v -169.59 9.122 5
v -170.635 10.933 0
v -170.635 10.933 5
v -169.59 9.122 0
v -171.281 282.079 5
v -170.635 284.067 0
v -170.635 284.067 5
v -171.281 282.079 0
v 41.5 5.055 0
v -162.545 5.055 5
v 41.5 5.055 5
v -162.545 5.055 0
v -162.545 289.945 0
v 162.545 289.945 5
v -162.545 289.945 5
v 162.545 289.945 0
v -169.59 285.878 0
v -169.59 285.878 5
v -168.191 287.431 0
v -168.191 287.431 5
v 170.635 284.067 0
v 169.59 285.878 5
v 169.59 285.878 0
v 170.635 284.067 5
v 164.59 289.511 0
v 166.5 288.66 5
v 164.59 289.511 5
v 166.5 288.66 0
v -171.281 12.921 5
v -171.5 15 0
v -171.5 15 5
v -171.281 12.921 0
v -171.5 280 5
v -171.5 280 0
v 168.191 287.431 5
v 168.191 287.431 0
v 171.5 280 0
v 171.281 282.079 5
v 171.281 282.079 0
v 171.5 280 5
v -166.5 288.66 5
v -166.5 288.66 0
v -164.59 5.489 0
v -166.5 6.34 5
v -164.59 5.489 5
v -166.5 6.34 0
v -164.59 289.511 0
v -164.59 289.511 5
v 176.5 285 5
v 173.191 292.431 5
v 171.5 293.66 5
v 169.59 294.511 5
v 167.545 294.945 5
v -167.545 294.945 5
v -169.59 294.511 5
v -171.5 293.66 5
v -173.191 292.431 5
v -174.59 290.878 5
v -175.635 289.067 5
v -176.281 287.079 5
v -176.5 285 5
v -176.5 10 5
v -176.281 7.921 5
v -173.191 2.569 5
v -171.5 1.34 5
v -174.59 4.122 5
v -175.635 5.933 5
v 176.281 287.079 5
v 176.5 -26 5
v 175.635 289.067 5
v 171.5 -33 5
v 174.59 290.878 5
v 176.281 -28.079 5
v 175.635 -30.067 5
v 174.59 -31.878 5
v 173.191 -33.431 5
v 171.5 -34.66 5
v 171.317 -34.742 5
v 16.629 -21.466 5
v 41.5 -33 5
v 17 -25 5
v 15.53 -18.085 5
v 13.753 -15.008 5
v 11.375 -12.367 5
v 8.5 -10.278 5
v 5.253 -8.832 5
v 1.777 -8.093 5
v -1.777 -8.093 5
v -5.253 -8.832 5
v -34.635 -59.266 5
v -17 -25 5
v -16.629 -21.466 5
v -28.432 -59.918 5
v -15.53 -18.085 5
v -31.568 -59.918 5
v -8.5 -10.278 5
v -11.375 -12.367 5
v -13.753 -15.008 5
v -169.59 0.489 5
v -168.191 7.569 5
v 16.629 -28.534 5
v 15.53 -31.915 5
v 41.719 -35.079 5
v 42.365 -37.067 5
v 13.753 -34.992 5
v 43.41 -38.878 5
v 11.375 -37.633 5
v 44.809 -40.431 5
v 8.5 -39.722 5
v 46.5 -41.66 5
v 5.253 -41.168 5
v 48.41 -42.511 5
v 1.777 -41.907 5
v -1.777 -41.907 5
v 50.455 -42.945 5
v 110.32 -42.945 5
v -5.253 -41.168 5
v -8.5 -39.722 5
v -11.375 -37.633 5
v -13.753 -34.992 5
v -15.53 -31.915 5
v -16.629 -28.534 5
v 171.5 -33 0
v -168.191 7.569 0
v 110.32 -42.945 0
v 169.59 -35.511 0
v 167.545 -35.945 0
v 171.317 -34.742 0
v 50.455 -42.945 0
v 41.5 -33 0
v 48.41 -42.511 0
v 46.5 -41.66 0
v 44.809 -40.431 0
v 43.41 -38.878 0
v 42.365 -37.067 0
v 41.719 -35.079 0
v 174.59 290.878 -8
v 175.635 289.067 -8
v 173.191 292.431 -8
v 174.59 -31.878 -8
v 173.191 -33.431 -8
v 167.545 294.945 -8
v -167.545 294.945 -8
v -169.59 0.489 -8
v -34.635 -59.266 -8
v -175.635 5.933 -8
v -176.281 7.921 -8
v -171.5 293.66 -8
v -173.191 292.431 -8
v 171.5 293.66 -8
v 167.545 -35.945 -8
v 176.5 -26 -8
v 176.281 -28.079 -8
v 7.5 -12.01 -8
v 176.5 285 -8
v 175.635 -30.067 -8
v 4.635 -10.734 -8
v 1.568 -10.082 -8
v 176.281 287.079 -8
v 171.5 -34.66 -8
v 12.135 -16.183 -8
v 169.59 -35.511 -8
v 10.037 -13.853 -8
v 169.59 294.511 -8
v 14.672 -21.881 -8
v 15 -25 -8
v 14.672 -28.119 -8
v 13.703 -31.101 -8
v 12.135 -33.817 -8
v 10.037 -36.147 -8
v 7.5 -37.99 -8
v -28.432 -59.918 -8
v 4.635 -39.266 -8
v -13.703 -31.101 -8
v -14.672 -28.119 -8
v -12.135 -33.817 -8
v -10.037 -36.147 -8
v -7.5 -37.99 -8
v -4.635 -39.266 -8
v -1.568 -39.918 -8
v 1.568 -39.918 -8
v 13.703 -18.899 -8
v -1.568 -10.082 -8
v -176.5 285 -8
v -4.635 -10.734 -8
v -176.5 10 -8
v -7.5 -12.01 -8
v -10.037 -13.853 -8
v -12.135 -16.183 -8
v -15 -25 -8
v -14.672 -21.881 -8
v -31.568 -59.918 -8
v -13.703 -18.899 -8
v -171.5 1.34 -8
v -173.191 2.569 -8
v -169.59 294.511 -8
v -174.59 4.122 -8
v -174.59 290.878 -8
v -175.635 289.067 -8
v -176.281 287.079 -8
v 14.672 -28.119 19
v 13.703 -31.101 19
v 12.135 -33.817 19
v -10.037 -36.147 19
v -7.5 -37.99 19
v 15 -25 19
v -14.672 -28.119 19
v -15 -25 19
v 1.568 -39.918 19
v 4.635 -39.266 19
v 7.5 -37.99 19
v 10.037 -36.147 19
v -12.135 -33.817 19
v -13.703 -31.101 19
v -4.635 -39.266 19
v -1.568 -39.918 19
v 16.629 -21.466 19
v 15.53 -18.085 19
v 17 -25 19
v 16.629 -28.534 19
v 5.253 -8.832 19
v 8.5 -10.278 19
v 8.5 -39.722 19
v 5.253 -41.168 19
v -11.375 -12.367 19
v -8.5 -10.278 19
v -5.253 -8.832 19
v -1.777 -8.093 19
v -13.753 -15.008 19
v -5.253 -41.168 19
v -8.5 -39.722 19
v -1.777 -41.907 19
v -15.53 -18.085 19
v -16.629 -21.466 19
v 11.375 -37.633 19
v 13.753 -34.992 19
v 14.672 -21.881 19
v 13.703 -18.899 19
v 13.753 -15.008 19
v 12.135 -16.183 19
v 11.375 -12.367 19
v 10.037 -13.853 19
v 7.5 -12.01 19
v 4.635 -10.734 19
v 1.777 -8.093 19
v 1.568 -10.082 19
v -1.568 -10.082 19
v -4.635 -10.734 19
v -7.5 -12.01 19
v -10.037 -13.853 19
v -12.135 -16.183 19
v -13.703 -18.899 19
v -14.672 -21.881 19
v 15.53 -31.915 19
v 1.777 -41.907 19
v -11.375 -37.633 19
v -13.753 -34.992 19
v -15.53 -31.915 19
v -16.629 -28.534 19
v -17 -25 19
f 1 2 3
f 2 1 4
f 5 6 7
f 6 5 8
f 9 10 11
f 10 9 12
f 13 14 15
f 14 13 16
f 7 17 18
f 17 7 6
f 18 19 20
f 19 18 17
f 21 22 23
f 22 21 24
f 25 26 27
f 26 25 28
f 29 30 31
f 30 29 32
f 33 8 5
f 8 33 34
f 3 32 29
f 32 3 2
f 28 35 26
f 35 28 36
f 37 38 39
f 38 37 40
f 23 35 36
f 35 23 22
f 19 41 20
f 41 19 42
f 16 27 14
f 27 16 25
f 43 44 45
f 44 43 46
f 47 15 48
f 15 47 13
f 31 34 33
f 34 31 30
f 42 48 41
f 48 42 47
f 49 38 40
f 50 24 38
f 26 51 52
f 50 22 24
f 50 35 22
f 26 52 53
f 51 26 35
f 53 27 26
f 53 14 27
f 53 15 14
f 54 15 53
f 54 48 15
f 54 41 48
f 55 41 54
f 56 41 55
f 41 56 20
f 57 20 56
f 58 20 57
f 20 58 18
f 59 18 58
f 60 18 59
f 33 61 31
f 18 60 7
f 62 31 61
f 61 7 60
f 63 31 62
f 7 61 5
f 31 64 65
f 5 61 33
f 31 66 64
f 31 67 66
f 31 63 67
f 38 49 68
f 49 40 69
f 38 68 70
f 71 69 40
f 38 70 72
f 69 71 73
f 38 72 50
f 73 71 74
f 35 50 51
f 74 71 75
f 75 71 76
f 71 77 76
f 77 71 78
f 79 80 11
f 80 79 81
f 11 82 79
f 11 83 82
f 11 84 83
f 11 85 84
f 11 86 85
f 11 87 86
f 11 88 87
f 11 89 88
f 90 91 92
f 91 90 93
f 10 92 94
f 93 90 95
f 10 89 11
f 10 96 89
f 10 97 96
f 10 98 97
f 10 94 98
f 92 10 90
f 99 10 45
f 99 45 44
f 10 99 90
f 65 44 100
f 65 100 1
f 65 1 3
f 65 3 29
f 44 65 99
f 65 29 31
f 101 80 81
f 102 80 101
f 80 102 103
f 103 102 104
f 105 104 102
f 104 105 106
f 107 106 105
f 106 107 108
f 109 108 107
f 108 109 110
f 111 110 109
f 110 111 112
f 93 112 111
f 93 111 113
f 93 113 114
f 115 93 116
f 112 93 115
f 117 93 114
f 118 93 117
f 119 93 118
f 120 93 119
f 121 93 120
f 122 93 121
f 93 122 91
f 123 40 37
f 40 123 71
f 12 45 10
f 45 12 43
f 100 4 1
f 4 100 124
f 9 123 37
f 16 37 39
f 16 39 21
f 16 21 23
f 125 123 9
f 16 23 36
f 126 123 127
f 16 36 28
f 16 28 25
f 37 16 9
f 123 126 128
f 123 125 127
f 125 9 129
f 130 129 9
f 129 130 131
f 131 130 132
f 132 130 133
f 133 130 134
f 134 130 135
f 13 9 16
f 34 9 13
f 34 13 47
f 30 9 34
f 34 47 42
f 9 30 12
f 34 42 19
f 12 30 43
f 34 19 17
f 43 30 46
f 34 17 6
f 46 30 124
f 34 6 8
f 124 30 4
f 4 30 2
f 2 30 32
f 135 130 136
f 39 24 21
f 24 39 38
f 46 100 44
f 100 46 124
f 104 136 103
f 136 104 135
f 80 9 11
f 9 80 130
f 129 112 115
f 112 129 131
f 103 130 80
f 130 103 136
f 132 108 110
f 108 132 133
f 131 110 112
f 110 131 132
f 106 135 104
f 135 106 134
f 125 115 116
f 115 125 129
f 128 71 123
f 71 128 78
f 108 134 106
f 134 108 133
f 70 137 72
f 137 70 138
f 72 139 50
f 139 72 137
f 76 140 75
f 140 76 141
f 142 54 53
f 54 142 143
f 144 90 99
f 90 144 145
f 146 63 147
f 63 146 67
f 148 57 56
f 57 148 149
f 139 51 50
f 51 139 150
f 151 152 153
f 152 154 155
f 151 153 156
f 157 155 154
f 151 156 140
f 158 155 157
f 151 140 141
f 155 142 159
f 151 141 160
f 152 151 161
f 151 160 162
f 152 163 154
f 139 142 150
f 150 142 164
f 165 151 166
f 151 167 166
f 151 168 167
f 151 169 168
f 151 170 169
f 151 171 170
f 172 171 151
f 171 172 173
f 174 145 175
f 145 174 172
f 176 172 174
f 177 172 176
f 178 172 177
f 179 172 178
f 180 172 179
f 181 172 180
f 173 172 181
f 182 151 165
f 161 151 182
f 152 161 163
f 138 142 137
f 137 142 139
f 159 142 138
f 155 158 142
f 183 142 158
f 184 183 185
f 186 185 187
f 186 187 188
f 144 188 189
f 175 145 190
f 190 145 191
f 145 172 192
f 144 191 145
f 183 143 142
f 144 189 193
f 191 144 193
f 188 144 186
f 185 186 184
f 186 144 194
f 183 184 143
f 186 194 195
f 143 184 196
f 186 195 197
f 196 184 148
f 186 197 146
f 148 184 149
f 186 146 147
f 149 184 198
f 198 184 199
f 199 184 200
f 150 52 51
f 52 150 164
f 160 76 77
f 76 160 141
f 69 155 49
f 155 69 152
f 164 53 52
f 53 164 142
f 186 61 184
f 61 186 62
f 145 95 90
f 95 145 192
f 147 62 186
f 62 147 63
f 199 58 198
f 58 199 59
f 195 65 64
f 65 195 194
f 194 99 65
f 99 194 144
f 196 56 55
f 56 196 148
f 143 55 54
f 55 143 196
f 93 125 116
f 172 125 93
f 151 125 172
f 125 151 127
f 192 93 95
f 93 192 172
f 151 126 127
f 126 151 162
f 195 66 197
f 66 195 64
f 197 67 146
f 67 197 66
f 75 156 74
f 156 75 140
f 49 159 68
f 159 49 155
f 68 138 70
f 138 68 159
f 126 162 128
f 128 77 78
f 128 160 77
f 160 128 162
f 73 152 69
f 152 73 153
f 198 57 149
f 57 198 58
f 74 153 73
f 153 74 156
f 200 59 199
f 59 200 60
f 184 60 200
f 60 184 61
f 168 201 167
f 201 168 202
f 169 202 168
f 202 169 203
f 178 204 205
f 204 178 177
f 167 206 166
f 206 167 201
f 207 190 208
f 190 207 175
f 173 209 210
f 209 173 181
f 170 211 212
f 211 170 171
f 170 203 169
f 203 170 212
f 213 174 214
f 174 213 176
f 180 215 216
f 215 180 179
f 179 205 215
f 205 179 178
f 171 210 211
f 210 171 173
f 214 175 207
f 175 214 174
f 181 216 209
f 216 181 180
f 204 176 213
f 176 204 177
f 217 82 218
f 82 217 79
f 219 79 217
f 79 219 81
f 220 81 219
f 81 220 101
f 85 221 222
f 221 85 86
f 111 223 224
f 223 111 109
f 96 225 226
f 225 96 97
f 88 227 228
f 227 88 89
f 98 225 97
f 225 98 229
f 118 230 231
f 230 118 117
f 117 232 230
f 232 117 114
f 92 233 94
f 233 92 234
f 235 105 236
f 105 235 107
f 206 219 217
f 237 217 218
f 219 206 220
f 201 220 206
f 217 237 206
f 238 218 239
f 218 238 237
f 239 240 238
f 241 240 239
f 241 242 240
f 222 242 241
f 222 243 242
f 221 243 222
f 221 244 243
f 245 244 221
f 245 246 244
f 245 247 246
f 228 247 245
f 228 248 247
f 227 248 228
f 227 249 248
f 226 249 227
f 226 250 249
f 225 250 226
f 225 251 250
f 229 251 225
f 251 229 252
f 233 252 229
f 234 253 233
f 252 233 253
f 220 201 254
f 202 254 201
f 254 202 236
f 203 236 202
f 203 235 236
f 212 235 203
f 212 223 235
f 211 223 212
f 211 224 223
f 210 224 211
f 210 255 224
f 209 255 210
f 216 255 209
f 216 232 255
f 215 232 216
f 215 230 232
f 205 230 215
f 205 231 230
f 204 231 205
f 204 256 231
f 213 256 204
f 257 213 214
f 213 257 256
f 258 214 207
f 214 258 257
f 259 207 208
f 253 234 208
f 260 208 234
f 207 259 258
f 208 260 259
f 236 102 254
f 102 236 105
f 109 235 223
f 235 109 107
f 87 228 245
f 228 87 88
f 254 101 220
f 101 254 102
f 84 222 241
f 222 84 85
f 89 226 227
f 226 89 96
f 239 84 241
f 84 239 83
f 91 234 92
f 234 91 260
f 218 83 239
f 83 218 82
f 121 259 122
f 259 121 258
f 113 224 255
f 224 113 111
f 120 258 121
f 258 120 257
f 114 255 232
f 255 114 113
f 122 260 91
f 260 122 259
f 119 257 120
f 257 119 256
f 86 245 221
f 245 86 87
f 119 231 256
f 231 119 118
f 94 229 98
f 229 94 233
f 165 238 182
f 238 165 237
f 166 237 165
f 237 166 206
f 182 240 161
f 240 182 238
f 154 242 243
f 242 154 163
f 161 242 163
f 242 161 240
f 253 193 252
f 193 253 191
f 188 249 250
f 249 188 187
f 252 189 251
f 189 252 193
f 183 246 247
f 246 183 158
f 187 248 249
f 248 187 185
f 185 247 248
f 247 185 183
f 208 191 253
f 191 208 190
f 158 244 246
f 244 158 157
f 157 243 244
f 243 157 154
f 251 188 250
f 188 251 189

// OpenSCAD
union () {
  difference () {
    translate ([0, 0, -8]) {
      hull () {
        translate ([-30, -45, 0]) {
          cylinder (h=13, r=15);
        }
        linear_extrude (height=13){
          hull () {
            translate ([-333/2, 10, 0]) {
              circle (r=10);
            }
            translate ([333/2, 10, 0]) {
              circle (r=10);
            }
            translate ([333/2, 285, 0]) {
              circle (r=10);
            }
            translate ([-333/2, 285, 0]) {
              circle (r=10);
            }
          }
        }
        translate ([213/2, -36, 0]) {
          linear_extrude (height=13){
            hull () {
              translate ([-60, 10, 0]) {
                circle (r=10);
              }
              translate ([60, 10, 0]) {
                circle (r=10);
              }
              translate ([60, 30, 0]) {
                circle (r=10);
              }
              translate ([-60, 30, 0]) {
                circle (r=10);
              }
            }
          }
        }
      }
    }
    union () {
      translate ([0, 5, 0]) {
        linear_extrude (height=5){
          hull () {
            translate ([-323/2, 10, 0]) {
              circle (r=10);
            }
            translate ([323/2, 10, 0]) {
              circle (r=10);
            }
            translate ([323/2, 275, 0]) {
              circle (r=10);
            }
            translate ([-323/2, 275, 0]) {
              circle (r=10);
            }
          }
        }
      }
      translate ([213/2, -36, 0]) {
        translate ([0, -7, 0]) {
          linear_extrude (height=13){
            hull () {
              translate ([-55, 10, 0]) {
                circle (r=10);
              }
              translate ([55, 10, 0]) {
                circle (r=10);
              }
              translate ([55, 275, 0]) {
                circle (r=10);
              }
              translate ([-55, 275, 0]) {
                circle (r=10);
              }
            }
          }
        }
      }
    }
    translate ([0, 0, -8]) {
      translate ([0, -25, 0]) {
        cylinder (h=27, r=15);
      }
    }
  }
  translate ([0, -25, -8]) {
    difference () {
      cylinder (h=27, r=17);
      cylinder (h=27, r=15);
    }
  }
}
